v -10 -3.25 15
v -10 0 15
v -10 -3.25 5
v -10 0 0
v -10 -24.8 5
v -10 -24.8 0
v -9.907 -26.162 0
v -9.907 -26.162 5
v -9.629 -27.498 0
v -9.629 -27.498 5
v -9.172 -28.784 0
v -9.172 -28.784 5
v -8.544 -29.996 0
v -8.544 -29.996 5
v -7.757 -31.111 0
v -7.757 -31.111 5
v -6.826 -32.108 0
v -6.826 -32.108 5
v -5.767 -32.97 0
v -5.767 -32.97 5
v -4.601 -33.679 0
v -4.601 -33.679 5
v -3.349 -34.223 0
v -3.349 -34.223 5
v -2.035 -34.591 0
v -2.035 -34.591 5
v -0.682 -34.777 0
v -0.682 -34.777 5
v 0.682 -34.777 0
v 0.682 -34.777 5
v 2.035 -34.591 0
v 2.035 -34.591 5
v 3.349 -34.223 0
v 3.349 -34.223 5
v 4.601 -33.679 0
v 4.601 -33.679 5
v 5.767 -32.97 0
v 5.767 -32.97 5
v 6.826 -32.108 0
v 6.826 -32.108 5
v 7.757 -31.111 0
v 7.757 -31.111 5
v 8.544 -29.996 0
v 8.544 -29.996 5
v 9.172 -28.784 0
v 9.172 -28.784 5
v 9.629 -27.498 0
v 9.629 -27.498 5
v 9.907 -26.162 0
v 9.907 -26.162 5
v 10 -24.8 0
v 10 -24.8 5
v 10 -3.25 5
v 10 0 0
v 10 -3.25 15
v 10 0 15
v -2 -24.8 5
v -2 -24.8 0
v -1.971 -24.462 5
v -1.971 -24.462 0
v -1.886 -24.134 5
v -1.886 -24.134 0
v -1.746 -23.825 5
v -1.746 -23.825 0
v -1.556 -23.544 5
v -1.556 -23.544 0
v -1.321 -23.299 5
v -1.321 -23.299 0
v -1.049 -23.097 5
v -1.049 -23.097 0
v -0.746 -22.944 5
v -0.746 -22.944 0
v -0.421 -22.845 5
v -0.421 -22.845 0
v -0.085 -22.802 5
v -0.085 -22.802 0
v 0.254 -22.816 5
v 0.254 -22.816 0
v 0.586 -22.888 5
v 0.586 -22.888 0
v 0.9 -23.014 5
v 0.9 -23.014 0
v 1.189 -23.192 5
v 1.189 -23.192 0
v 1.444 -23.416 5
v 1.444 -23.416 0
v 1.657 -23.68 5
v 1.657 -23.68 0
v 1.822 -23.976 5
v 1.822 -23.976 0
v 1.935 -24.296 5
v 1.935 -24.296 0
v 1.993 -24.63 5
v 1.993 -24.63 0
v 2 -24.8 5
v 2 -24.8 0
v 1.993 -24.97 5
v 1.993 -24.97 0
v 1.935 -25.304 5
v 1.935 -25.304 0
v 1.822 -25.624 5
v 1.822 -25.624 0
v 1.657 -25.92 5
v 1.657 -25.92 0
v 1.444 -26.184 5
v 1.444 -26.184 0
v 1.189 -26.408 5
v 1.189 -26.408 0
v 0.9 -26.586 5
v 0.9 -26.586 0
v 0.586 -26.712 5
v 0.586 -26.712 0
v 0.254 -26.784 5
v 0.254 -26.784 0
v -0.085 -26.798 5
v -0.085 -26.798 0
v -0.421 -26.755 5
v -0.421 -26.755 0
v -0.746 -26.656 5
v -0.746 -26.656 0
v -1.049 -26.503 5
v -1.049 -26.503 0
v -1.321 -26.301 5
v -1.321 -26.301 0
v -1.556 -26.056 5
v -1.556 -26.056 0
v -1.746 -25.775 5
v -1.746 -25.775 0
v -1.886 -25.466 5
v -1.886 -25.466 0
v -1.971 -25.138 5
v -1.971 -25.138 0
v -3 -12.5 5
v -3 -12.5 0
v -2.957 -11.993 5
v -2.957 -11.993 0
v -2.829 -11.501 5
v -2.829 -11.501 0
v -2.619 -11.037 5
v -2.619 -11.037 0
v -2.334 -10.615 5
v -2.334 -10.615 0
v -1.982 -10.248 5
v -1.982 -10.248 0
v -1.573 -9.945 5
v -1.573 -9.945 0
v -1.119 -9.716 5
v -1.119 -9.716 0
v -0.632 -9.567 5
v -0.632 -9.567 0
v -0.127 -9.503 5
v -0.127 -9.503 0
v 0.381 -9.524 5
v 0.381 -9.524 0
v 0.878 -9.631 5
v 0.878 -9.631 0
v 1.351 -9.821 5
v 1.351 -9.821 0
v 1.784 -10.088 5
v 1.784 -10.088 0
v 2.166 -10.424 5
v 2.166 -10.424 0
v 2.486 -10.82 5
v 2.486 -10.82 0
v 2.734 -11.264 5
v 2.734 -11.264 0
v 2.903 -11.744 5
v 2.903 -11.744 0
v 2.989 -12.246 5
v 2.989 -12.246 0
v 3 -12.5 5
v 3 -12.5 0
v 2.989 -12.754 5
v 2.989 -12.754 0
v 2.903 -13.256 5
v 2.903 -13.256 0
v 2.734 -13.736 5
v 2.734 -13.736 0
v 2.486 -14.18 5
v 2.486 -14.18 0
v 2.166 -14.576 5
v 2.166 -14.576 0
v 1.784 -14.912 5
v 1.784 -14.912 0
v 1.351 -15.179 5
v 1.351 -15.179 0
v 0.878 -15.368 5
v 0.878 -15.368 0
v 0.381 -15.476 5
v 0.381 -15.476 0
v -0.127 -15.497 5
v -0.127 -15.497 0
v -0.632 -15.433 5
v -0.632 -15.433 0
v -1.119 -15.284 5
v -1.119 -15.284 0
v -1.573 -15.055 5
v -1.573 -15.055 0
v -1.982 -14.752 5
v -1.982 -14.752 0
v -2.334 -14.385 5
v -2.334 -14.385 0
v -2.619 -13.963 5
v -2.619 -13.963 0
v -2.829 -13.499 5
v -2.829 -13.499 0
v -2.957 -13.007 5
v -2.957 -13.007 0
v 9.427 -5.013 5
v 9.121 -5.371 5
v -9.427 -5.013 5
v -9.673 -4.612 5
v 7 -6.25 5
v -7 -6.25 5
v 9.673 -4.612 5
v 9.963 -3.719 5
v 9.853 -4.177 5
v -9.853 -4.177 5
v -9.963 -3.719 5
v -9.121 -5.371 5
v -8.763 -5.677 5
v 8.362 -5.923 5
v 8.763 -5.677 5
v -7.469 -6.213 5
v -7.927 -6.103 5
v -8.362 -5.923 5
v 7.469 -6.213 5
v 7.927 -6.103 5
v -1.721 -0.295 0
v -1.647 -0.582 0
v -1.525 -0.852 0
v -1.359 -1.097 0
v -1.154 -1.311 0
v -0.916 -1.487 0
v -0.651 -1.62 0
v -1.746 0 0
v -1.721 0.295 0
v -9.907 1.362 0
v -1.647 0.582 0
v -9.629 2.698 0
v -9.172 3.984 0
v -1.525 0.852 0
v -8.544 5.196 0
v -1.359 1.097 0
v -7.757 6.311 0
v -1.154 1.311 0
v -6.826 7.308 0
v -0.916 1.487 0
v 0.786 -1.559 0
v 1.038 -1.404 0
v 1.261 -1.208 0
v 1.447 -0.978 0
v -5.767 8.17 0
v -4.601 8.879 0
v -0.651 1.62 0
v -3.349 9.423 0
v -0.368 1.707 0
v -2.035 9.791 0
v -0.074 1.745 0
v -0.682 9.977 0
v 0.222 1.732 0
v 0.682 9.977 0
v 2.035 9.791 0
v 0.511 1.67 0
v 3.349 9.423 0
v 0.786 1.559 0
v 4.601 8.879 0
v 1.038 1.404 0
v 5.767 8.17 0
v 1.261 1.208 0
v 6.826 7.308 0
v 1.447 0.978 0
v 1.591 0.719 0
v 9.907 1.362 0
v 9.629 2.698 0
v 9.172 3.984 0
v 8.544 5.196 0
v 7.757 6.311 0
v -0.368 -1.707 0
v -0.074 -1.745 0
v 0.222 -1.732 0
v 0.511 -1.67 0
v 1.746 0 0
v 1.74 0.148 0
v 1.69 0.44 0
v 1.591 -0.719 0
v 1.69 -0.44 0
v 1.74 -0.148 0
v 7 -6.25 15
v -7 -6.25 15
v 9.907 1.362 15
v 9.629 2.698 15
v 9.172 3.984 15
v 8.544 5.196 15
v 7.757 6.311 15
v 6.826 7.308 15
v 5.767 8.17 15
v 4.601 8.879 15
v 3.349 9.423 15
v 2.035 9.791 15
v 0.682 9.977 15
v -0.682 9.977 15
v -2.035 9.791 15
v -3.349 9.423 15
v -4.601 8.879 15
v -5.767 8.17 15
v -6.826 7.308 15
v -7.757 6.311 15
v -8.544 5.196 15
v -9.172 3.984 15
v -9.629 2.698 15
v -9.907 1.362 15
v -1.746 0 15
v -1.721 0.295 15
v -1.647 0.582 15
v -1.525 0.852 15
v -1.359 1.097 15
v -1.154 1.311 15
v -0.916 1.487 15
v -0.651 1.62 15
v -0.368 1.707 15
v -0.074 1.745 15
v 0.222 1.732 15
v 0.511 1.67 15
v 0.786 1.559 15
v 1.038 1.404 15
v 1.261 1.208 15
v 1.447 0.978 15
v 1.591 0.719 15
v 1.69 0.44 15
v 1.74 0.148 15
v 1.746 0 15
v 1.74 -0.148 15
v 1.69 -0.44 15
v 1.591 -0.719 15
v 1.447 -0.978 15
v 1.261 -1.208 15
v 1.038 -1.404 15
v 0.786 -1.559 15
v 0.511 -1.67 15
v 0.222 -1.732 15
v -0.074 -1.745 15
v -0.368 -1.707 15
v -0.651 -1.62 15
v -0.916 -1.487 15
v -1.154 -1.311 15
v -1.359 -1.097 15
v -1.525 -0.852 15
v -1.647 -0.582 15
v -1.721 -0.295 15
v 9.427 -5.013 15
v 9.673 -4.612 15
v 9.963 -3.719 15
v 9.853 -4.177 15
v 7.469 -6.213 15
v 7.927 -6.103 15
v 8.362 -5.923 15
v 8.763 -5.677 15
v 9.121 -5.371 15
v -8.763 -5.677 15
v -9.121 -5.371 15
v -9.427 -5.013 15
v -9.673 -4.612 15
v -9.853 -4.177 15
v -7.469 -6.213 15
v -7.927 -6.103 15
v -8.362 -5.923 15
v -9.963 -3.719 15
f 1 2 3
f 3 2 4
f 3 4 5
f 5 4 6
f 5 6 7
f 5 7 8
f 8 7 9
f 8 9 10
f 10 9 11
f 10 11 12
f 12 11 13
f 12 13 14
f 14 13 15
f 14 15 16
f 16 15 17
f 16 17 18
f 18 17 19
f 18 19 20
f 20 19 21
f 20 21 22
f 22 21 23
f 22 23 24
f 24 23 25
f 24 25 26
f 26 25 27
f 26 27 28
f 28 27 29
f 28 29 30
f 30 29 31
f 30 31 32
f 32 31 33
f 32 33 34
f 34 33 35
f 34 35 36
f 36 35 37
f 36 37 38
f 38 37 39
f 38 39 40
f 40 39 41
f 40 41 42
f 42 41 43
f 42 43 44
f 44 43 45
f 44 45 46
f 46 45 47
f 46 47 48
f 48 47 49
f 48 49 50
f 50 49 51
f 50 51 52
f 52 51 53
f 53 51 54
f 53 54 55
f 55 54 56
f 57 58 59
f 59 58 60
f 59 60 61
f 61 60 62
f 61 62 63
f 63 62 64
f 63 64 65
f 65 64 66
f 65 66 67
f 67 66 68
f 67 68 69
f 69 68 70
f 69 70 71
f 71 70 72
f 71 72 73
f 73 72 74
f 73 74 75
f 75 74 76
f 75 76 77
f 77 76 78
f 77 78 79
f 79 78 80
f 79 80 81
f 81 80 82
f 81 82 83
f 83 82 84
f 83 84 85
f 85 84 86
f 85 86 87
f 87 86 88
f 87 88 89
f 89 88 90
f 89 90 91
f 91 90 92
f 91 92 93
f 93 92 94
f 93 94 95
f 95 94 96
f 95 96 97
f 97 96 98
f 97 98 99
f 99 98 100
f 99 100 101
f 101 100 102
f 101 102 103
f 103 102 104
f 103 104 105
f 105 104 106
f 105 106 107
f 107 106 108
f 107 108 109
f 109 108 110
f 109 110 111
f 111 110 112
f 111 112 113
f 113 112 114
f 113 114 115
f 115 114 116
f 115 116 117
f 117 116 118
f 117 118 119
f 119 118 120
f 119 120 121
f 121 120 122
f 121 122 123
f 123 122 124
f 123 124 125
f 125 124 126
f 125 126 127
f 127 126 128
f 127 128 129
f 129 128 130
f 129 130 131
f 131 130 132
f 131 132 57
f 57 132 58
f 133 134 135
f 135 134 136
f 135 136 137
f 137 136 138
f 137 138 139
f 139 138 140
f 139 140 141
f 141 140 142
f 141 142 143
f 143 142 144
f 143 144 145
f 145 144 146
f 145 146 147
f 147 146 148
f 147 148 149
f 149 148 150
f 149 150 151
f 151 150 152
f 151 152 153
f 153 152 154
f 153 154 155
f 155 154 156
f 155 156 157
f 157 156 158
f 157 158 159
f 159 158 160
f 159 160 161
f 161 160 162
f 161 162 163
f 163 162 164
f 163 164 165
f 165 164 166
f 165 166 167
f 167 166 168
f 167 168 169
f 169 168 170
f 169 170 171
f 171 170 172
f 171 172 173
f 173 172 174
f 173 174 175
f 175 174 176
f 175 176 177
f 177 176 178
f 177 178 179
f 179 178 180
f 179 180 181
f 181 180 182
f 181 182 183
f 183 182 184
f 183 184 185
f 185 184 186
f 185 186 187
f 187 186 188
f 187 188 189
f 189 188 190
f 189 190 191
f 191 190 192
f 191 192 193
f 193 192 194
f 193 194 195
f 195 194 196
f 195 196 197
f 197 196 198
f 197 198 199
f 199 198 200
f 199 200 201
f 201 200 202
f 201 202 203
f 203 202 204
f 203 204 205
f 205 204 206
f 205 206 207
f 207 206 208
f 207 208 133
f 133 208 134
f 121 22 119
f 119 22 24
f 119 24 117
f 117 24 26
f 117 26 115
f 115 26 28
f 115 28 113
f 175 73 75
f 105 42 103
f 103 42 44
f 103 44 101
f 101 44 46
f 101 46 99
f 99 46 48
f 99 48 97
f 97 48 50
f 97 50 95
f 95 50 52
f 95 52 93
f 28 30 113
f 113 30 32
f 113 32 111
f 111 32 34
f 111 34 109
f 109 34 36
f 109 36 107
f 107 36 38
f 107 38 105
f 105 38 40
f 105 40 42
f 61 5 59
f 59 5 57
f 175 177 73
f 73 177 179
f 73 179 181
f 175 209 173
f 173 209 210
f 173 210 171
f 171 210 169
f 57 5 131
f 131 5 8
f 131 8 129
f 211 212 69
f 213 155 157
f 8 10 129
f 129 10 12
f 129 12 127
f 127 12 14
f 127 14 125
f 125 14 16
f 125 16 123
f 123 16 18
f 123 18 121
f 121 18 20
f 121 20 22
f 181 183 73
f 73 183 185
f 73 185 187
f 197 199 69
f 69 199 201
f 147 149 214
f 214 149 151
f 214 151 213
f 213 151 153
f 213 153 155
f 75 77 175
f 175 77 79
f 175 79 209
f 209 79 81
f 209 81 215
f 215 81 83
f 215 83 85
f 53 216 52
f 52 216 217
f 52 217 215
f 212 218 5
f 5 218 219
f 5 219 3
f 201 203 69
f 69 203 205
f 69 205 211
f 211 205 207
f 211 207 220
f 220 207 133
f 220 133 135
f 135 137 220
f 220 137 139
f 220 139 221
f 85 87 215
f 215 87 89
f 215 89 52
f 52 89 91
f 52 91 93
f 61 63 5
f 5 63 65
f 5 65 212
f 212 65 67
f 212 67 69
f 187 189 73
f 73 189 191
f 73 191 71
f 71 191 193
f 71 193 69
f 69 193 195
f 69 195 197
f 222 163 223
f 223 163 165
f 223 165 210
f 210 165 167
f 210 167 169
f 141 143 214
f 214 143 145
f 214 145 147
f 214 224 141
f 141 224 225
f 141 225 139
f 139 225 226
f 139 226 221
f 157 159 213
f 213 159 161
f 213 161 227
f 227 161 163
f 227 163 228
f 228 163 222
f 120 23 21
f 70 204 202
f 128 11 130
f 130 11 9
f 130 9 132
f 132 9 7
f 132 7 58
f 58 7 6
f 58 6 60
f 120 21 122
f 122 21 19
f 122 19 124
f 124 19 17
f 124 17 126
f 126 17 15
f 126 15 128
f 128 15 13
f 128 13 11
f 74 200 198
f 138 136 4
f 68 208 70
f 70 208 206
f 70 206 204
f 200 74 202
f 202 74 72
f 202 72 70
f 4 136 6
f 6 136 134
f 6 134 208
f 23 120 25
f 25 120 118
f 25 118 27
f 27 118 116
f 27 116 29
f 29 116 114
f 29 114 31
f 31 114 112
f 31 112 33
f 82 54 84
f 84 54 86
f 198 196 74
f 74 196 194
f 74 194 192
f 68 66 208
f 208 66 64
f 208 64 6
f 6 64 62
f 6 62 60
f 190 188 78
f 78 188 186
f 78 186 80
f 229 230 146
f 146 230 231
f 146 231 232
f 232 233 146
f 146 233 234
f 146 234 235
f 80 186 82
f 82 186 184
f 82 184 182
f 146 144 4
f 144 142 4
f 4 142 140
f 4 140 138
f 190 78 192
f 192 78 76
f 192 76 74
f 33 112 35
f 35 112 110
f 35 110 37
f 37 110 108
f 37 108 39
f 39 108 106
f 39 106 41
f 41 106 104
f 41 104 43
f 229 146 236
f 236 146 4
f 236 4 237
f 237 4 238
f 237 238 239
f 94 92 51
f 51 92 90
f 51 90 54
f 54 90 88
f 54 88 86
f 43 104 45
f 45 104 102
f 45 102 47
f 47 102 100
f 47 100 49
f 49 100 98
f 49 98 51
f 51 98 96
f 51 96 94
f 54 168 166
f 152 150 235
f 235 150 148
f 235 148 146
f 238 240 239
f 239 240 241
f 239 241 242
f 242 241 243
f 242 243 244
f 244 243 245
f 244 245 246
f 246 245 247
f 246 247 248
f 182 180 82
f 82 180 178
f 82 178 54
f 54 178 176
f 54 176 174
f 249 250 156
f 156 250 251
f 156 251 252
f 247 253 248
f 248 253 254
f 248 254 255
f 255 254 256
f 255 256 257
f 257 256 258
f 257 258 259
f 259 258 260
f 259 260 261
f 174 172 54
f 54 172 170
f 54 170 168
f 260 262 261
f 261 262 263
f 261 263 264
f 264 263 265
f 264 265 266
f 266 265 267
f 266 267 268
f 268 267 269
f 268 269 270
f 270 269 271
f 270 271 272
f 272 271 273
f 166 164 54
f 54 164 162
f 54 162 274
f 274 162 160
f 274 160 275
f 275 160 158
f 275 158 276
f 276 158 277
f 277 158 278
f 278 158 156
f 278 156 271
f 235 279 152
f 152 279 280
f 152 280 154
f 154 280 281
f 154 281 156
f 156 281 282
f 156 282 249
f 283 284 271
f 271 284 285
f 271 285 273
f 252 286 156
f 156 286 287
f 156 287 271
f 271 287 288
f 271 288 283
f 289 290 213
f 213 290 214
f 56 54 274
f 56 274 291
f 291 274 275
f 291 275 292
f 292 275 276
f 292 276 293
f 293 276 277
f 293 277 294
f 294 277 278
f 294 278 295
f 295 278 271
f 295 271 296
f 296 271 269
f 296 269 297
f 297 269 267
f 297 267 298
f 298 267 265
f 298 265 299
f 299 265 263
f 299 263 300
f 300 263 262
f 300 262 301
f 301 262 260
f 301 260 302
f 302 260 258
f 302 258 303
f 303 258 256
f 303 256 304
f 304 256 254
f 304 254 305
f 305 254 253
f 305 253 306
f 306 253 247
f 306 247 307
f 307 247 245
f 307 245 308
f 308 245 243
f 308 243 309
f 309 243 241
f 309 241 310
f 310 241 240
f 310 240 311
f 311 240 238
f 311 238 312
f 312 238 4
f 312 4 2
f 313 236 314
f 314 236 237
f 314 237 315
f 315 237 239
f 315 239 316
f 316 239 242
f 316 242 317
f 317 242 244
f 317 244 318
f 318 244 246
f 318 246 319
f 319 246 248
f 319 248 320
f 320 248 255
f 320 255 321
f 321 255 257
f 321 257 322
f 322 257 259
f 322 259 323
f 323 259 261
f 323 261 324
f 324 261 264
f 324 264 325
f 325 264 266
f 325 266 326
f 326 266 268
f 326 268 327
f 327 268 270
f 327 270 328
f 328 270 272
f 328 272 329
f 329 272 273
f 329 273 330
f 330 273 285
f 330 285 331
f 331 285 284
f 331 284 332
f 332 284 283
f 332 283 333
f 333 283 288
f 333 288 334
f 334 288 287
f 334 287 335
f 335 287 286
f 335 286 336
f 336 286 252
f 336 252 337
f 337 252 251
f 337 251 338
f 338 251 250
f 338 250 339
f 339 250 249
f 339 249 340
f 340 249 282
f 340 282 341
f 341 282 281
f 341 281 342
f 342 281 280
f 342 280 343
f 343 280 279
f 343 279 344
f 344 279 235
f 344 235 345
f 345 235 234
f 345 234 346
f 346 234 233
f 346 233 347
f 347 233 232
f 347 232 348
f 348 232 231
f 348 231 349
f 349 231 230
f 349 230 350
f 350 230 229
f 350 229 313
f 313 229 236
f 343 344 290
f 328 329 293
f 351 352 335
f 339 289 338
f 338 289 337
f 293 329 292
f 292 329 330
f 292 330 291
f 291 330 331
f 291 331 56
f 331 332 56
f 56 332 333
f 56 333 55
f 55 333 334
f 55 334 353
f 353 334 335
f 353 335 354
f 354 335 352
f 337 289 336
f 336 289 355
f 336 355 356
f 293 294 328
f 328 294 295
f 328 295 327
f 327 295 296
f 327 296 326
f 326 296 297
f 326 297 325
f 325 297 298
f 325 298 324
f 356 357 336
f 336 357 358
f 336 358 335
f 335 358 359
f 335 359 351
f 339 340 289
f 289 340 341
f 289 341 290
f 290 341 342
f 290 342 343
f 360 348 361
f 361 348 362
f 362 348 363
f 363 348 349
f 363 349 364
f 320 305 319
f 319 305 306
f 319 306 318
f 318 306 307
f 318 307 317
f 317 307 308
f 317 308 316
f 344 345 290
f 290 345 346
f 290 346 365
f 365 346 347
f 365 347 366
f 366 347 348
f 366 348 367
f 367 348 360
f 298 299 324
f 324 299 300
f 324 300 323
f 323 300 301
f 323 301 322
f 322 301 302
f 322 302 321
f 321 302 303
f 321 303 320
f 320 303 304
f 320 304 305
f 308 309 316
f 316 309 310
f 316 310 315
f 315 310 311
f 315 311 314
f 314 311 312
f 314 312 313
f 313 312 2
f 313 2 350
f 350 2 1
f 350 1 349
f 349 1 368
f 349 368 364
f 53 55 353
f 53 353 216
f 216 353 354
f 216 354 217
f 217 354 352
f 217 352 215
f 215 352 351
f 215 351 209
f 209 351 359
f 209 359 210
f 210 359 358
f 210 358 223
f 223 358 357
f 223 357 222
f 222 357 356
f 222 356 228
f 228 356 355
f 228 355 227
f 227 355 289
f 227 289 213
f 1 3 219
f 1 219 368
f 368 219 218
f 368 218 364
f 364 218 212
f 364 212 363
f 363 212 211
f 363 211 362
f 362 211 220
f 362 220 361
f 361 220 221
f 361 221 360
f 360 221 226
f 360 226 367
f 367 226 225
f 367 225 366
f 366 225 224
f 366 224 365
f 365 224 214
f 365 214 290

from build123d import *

# Parameters (mm, degrees)
SKETCH1_R           = 2
SKETCH1_R_2         = 3
BOSS_EXTRUDE1_DEPTH = 5
SKETCH1_3_R         = 1.74625
BOSS_EXTRUDE2_DEPTH = 15
FILLET1_R           = 3


with BuildPart() as part:
    # Sketch1 → Boss-Extrude1 (new body)
    with BuildSketch(Plane.XY):
        with BuildLine():
            Line((10, -24.8), (10, -6.25))
            Line((10, -6.25), (-10, -6.25))
            Line((-10, -6.25), (-10, -24.8))
            ThreePointArc((-10, -24.8), (0, -34.8), (10, -24.8))
        make_face()
        with Locations((0, -24.8)):
            Circle(SKETCH1_R, mode=Mode.SUBTRACT)
        with Locations((0, -12.5)):
            Circle(SKETCH1_R_2, mode=Mode.SUBTRACT)
    extrude(amount=BOSS_EXTRUDE1_DEPTH)

    # Sketch1<3> → Boss-Extrude2 (add)
    with BuildSketch(Plane.XY):
        with BuildLine():
            Line((10, -6.25), (10, 0))
            ThreePointArc((10, 0), (0, 10), (-10, 0))
            Line((-10, 0), (-10, -6.25))
            Line((-10, -6.25), (10, -6.25))
        make_face()
        Circle(SKETCH1_3_R, mode=Mode.SUBTRACT)
    extrude(amount=BOSS_EXTRUDE2_DEPTH)

    # Fillet1
    fillet1_edges = [part.edges().sort_by_distance(p)[0] for p in [
        (-10, -6.25, 10),
        (10, -6.25, 10),
    ]]
    fillet(fillet1_edges, radius=FILLET1_R)


solid = part.part
